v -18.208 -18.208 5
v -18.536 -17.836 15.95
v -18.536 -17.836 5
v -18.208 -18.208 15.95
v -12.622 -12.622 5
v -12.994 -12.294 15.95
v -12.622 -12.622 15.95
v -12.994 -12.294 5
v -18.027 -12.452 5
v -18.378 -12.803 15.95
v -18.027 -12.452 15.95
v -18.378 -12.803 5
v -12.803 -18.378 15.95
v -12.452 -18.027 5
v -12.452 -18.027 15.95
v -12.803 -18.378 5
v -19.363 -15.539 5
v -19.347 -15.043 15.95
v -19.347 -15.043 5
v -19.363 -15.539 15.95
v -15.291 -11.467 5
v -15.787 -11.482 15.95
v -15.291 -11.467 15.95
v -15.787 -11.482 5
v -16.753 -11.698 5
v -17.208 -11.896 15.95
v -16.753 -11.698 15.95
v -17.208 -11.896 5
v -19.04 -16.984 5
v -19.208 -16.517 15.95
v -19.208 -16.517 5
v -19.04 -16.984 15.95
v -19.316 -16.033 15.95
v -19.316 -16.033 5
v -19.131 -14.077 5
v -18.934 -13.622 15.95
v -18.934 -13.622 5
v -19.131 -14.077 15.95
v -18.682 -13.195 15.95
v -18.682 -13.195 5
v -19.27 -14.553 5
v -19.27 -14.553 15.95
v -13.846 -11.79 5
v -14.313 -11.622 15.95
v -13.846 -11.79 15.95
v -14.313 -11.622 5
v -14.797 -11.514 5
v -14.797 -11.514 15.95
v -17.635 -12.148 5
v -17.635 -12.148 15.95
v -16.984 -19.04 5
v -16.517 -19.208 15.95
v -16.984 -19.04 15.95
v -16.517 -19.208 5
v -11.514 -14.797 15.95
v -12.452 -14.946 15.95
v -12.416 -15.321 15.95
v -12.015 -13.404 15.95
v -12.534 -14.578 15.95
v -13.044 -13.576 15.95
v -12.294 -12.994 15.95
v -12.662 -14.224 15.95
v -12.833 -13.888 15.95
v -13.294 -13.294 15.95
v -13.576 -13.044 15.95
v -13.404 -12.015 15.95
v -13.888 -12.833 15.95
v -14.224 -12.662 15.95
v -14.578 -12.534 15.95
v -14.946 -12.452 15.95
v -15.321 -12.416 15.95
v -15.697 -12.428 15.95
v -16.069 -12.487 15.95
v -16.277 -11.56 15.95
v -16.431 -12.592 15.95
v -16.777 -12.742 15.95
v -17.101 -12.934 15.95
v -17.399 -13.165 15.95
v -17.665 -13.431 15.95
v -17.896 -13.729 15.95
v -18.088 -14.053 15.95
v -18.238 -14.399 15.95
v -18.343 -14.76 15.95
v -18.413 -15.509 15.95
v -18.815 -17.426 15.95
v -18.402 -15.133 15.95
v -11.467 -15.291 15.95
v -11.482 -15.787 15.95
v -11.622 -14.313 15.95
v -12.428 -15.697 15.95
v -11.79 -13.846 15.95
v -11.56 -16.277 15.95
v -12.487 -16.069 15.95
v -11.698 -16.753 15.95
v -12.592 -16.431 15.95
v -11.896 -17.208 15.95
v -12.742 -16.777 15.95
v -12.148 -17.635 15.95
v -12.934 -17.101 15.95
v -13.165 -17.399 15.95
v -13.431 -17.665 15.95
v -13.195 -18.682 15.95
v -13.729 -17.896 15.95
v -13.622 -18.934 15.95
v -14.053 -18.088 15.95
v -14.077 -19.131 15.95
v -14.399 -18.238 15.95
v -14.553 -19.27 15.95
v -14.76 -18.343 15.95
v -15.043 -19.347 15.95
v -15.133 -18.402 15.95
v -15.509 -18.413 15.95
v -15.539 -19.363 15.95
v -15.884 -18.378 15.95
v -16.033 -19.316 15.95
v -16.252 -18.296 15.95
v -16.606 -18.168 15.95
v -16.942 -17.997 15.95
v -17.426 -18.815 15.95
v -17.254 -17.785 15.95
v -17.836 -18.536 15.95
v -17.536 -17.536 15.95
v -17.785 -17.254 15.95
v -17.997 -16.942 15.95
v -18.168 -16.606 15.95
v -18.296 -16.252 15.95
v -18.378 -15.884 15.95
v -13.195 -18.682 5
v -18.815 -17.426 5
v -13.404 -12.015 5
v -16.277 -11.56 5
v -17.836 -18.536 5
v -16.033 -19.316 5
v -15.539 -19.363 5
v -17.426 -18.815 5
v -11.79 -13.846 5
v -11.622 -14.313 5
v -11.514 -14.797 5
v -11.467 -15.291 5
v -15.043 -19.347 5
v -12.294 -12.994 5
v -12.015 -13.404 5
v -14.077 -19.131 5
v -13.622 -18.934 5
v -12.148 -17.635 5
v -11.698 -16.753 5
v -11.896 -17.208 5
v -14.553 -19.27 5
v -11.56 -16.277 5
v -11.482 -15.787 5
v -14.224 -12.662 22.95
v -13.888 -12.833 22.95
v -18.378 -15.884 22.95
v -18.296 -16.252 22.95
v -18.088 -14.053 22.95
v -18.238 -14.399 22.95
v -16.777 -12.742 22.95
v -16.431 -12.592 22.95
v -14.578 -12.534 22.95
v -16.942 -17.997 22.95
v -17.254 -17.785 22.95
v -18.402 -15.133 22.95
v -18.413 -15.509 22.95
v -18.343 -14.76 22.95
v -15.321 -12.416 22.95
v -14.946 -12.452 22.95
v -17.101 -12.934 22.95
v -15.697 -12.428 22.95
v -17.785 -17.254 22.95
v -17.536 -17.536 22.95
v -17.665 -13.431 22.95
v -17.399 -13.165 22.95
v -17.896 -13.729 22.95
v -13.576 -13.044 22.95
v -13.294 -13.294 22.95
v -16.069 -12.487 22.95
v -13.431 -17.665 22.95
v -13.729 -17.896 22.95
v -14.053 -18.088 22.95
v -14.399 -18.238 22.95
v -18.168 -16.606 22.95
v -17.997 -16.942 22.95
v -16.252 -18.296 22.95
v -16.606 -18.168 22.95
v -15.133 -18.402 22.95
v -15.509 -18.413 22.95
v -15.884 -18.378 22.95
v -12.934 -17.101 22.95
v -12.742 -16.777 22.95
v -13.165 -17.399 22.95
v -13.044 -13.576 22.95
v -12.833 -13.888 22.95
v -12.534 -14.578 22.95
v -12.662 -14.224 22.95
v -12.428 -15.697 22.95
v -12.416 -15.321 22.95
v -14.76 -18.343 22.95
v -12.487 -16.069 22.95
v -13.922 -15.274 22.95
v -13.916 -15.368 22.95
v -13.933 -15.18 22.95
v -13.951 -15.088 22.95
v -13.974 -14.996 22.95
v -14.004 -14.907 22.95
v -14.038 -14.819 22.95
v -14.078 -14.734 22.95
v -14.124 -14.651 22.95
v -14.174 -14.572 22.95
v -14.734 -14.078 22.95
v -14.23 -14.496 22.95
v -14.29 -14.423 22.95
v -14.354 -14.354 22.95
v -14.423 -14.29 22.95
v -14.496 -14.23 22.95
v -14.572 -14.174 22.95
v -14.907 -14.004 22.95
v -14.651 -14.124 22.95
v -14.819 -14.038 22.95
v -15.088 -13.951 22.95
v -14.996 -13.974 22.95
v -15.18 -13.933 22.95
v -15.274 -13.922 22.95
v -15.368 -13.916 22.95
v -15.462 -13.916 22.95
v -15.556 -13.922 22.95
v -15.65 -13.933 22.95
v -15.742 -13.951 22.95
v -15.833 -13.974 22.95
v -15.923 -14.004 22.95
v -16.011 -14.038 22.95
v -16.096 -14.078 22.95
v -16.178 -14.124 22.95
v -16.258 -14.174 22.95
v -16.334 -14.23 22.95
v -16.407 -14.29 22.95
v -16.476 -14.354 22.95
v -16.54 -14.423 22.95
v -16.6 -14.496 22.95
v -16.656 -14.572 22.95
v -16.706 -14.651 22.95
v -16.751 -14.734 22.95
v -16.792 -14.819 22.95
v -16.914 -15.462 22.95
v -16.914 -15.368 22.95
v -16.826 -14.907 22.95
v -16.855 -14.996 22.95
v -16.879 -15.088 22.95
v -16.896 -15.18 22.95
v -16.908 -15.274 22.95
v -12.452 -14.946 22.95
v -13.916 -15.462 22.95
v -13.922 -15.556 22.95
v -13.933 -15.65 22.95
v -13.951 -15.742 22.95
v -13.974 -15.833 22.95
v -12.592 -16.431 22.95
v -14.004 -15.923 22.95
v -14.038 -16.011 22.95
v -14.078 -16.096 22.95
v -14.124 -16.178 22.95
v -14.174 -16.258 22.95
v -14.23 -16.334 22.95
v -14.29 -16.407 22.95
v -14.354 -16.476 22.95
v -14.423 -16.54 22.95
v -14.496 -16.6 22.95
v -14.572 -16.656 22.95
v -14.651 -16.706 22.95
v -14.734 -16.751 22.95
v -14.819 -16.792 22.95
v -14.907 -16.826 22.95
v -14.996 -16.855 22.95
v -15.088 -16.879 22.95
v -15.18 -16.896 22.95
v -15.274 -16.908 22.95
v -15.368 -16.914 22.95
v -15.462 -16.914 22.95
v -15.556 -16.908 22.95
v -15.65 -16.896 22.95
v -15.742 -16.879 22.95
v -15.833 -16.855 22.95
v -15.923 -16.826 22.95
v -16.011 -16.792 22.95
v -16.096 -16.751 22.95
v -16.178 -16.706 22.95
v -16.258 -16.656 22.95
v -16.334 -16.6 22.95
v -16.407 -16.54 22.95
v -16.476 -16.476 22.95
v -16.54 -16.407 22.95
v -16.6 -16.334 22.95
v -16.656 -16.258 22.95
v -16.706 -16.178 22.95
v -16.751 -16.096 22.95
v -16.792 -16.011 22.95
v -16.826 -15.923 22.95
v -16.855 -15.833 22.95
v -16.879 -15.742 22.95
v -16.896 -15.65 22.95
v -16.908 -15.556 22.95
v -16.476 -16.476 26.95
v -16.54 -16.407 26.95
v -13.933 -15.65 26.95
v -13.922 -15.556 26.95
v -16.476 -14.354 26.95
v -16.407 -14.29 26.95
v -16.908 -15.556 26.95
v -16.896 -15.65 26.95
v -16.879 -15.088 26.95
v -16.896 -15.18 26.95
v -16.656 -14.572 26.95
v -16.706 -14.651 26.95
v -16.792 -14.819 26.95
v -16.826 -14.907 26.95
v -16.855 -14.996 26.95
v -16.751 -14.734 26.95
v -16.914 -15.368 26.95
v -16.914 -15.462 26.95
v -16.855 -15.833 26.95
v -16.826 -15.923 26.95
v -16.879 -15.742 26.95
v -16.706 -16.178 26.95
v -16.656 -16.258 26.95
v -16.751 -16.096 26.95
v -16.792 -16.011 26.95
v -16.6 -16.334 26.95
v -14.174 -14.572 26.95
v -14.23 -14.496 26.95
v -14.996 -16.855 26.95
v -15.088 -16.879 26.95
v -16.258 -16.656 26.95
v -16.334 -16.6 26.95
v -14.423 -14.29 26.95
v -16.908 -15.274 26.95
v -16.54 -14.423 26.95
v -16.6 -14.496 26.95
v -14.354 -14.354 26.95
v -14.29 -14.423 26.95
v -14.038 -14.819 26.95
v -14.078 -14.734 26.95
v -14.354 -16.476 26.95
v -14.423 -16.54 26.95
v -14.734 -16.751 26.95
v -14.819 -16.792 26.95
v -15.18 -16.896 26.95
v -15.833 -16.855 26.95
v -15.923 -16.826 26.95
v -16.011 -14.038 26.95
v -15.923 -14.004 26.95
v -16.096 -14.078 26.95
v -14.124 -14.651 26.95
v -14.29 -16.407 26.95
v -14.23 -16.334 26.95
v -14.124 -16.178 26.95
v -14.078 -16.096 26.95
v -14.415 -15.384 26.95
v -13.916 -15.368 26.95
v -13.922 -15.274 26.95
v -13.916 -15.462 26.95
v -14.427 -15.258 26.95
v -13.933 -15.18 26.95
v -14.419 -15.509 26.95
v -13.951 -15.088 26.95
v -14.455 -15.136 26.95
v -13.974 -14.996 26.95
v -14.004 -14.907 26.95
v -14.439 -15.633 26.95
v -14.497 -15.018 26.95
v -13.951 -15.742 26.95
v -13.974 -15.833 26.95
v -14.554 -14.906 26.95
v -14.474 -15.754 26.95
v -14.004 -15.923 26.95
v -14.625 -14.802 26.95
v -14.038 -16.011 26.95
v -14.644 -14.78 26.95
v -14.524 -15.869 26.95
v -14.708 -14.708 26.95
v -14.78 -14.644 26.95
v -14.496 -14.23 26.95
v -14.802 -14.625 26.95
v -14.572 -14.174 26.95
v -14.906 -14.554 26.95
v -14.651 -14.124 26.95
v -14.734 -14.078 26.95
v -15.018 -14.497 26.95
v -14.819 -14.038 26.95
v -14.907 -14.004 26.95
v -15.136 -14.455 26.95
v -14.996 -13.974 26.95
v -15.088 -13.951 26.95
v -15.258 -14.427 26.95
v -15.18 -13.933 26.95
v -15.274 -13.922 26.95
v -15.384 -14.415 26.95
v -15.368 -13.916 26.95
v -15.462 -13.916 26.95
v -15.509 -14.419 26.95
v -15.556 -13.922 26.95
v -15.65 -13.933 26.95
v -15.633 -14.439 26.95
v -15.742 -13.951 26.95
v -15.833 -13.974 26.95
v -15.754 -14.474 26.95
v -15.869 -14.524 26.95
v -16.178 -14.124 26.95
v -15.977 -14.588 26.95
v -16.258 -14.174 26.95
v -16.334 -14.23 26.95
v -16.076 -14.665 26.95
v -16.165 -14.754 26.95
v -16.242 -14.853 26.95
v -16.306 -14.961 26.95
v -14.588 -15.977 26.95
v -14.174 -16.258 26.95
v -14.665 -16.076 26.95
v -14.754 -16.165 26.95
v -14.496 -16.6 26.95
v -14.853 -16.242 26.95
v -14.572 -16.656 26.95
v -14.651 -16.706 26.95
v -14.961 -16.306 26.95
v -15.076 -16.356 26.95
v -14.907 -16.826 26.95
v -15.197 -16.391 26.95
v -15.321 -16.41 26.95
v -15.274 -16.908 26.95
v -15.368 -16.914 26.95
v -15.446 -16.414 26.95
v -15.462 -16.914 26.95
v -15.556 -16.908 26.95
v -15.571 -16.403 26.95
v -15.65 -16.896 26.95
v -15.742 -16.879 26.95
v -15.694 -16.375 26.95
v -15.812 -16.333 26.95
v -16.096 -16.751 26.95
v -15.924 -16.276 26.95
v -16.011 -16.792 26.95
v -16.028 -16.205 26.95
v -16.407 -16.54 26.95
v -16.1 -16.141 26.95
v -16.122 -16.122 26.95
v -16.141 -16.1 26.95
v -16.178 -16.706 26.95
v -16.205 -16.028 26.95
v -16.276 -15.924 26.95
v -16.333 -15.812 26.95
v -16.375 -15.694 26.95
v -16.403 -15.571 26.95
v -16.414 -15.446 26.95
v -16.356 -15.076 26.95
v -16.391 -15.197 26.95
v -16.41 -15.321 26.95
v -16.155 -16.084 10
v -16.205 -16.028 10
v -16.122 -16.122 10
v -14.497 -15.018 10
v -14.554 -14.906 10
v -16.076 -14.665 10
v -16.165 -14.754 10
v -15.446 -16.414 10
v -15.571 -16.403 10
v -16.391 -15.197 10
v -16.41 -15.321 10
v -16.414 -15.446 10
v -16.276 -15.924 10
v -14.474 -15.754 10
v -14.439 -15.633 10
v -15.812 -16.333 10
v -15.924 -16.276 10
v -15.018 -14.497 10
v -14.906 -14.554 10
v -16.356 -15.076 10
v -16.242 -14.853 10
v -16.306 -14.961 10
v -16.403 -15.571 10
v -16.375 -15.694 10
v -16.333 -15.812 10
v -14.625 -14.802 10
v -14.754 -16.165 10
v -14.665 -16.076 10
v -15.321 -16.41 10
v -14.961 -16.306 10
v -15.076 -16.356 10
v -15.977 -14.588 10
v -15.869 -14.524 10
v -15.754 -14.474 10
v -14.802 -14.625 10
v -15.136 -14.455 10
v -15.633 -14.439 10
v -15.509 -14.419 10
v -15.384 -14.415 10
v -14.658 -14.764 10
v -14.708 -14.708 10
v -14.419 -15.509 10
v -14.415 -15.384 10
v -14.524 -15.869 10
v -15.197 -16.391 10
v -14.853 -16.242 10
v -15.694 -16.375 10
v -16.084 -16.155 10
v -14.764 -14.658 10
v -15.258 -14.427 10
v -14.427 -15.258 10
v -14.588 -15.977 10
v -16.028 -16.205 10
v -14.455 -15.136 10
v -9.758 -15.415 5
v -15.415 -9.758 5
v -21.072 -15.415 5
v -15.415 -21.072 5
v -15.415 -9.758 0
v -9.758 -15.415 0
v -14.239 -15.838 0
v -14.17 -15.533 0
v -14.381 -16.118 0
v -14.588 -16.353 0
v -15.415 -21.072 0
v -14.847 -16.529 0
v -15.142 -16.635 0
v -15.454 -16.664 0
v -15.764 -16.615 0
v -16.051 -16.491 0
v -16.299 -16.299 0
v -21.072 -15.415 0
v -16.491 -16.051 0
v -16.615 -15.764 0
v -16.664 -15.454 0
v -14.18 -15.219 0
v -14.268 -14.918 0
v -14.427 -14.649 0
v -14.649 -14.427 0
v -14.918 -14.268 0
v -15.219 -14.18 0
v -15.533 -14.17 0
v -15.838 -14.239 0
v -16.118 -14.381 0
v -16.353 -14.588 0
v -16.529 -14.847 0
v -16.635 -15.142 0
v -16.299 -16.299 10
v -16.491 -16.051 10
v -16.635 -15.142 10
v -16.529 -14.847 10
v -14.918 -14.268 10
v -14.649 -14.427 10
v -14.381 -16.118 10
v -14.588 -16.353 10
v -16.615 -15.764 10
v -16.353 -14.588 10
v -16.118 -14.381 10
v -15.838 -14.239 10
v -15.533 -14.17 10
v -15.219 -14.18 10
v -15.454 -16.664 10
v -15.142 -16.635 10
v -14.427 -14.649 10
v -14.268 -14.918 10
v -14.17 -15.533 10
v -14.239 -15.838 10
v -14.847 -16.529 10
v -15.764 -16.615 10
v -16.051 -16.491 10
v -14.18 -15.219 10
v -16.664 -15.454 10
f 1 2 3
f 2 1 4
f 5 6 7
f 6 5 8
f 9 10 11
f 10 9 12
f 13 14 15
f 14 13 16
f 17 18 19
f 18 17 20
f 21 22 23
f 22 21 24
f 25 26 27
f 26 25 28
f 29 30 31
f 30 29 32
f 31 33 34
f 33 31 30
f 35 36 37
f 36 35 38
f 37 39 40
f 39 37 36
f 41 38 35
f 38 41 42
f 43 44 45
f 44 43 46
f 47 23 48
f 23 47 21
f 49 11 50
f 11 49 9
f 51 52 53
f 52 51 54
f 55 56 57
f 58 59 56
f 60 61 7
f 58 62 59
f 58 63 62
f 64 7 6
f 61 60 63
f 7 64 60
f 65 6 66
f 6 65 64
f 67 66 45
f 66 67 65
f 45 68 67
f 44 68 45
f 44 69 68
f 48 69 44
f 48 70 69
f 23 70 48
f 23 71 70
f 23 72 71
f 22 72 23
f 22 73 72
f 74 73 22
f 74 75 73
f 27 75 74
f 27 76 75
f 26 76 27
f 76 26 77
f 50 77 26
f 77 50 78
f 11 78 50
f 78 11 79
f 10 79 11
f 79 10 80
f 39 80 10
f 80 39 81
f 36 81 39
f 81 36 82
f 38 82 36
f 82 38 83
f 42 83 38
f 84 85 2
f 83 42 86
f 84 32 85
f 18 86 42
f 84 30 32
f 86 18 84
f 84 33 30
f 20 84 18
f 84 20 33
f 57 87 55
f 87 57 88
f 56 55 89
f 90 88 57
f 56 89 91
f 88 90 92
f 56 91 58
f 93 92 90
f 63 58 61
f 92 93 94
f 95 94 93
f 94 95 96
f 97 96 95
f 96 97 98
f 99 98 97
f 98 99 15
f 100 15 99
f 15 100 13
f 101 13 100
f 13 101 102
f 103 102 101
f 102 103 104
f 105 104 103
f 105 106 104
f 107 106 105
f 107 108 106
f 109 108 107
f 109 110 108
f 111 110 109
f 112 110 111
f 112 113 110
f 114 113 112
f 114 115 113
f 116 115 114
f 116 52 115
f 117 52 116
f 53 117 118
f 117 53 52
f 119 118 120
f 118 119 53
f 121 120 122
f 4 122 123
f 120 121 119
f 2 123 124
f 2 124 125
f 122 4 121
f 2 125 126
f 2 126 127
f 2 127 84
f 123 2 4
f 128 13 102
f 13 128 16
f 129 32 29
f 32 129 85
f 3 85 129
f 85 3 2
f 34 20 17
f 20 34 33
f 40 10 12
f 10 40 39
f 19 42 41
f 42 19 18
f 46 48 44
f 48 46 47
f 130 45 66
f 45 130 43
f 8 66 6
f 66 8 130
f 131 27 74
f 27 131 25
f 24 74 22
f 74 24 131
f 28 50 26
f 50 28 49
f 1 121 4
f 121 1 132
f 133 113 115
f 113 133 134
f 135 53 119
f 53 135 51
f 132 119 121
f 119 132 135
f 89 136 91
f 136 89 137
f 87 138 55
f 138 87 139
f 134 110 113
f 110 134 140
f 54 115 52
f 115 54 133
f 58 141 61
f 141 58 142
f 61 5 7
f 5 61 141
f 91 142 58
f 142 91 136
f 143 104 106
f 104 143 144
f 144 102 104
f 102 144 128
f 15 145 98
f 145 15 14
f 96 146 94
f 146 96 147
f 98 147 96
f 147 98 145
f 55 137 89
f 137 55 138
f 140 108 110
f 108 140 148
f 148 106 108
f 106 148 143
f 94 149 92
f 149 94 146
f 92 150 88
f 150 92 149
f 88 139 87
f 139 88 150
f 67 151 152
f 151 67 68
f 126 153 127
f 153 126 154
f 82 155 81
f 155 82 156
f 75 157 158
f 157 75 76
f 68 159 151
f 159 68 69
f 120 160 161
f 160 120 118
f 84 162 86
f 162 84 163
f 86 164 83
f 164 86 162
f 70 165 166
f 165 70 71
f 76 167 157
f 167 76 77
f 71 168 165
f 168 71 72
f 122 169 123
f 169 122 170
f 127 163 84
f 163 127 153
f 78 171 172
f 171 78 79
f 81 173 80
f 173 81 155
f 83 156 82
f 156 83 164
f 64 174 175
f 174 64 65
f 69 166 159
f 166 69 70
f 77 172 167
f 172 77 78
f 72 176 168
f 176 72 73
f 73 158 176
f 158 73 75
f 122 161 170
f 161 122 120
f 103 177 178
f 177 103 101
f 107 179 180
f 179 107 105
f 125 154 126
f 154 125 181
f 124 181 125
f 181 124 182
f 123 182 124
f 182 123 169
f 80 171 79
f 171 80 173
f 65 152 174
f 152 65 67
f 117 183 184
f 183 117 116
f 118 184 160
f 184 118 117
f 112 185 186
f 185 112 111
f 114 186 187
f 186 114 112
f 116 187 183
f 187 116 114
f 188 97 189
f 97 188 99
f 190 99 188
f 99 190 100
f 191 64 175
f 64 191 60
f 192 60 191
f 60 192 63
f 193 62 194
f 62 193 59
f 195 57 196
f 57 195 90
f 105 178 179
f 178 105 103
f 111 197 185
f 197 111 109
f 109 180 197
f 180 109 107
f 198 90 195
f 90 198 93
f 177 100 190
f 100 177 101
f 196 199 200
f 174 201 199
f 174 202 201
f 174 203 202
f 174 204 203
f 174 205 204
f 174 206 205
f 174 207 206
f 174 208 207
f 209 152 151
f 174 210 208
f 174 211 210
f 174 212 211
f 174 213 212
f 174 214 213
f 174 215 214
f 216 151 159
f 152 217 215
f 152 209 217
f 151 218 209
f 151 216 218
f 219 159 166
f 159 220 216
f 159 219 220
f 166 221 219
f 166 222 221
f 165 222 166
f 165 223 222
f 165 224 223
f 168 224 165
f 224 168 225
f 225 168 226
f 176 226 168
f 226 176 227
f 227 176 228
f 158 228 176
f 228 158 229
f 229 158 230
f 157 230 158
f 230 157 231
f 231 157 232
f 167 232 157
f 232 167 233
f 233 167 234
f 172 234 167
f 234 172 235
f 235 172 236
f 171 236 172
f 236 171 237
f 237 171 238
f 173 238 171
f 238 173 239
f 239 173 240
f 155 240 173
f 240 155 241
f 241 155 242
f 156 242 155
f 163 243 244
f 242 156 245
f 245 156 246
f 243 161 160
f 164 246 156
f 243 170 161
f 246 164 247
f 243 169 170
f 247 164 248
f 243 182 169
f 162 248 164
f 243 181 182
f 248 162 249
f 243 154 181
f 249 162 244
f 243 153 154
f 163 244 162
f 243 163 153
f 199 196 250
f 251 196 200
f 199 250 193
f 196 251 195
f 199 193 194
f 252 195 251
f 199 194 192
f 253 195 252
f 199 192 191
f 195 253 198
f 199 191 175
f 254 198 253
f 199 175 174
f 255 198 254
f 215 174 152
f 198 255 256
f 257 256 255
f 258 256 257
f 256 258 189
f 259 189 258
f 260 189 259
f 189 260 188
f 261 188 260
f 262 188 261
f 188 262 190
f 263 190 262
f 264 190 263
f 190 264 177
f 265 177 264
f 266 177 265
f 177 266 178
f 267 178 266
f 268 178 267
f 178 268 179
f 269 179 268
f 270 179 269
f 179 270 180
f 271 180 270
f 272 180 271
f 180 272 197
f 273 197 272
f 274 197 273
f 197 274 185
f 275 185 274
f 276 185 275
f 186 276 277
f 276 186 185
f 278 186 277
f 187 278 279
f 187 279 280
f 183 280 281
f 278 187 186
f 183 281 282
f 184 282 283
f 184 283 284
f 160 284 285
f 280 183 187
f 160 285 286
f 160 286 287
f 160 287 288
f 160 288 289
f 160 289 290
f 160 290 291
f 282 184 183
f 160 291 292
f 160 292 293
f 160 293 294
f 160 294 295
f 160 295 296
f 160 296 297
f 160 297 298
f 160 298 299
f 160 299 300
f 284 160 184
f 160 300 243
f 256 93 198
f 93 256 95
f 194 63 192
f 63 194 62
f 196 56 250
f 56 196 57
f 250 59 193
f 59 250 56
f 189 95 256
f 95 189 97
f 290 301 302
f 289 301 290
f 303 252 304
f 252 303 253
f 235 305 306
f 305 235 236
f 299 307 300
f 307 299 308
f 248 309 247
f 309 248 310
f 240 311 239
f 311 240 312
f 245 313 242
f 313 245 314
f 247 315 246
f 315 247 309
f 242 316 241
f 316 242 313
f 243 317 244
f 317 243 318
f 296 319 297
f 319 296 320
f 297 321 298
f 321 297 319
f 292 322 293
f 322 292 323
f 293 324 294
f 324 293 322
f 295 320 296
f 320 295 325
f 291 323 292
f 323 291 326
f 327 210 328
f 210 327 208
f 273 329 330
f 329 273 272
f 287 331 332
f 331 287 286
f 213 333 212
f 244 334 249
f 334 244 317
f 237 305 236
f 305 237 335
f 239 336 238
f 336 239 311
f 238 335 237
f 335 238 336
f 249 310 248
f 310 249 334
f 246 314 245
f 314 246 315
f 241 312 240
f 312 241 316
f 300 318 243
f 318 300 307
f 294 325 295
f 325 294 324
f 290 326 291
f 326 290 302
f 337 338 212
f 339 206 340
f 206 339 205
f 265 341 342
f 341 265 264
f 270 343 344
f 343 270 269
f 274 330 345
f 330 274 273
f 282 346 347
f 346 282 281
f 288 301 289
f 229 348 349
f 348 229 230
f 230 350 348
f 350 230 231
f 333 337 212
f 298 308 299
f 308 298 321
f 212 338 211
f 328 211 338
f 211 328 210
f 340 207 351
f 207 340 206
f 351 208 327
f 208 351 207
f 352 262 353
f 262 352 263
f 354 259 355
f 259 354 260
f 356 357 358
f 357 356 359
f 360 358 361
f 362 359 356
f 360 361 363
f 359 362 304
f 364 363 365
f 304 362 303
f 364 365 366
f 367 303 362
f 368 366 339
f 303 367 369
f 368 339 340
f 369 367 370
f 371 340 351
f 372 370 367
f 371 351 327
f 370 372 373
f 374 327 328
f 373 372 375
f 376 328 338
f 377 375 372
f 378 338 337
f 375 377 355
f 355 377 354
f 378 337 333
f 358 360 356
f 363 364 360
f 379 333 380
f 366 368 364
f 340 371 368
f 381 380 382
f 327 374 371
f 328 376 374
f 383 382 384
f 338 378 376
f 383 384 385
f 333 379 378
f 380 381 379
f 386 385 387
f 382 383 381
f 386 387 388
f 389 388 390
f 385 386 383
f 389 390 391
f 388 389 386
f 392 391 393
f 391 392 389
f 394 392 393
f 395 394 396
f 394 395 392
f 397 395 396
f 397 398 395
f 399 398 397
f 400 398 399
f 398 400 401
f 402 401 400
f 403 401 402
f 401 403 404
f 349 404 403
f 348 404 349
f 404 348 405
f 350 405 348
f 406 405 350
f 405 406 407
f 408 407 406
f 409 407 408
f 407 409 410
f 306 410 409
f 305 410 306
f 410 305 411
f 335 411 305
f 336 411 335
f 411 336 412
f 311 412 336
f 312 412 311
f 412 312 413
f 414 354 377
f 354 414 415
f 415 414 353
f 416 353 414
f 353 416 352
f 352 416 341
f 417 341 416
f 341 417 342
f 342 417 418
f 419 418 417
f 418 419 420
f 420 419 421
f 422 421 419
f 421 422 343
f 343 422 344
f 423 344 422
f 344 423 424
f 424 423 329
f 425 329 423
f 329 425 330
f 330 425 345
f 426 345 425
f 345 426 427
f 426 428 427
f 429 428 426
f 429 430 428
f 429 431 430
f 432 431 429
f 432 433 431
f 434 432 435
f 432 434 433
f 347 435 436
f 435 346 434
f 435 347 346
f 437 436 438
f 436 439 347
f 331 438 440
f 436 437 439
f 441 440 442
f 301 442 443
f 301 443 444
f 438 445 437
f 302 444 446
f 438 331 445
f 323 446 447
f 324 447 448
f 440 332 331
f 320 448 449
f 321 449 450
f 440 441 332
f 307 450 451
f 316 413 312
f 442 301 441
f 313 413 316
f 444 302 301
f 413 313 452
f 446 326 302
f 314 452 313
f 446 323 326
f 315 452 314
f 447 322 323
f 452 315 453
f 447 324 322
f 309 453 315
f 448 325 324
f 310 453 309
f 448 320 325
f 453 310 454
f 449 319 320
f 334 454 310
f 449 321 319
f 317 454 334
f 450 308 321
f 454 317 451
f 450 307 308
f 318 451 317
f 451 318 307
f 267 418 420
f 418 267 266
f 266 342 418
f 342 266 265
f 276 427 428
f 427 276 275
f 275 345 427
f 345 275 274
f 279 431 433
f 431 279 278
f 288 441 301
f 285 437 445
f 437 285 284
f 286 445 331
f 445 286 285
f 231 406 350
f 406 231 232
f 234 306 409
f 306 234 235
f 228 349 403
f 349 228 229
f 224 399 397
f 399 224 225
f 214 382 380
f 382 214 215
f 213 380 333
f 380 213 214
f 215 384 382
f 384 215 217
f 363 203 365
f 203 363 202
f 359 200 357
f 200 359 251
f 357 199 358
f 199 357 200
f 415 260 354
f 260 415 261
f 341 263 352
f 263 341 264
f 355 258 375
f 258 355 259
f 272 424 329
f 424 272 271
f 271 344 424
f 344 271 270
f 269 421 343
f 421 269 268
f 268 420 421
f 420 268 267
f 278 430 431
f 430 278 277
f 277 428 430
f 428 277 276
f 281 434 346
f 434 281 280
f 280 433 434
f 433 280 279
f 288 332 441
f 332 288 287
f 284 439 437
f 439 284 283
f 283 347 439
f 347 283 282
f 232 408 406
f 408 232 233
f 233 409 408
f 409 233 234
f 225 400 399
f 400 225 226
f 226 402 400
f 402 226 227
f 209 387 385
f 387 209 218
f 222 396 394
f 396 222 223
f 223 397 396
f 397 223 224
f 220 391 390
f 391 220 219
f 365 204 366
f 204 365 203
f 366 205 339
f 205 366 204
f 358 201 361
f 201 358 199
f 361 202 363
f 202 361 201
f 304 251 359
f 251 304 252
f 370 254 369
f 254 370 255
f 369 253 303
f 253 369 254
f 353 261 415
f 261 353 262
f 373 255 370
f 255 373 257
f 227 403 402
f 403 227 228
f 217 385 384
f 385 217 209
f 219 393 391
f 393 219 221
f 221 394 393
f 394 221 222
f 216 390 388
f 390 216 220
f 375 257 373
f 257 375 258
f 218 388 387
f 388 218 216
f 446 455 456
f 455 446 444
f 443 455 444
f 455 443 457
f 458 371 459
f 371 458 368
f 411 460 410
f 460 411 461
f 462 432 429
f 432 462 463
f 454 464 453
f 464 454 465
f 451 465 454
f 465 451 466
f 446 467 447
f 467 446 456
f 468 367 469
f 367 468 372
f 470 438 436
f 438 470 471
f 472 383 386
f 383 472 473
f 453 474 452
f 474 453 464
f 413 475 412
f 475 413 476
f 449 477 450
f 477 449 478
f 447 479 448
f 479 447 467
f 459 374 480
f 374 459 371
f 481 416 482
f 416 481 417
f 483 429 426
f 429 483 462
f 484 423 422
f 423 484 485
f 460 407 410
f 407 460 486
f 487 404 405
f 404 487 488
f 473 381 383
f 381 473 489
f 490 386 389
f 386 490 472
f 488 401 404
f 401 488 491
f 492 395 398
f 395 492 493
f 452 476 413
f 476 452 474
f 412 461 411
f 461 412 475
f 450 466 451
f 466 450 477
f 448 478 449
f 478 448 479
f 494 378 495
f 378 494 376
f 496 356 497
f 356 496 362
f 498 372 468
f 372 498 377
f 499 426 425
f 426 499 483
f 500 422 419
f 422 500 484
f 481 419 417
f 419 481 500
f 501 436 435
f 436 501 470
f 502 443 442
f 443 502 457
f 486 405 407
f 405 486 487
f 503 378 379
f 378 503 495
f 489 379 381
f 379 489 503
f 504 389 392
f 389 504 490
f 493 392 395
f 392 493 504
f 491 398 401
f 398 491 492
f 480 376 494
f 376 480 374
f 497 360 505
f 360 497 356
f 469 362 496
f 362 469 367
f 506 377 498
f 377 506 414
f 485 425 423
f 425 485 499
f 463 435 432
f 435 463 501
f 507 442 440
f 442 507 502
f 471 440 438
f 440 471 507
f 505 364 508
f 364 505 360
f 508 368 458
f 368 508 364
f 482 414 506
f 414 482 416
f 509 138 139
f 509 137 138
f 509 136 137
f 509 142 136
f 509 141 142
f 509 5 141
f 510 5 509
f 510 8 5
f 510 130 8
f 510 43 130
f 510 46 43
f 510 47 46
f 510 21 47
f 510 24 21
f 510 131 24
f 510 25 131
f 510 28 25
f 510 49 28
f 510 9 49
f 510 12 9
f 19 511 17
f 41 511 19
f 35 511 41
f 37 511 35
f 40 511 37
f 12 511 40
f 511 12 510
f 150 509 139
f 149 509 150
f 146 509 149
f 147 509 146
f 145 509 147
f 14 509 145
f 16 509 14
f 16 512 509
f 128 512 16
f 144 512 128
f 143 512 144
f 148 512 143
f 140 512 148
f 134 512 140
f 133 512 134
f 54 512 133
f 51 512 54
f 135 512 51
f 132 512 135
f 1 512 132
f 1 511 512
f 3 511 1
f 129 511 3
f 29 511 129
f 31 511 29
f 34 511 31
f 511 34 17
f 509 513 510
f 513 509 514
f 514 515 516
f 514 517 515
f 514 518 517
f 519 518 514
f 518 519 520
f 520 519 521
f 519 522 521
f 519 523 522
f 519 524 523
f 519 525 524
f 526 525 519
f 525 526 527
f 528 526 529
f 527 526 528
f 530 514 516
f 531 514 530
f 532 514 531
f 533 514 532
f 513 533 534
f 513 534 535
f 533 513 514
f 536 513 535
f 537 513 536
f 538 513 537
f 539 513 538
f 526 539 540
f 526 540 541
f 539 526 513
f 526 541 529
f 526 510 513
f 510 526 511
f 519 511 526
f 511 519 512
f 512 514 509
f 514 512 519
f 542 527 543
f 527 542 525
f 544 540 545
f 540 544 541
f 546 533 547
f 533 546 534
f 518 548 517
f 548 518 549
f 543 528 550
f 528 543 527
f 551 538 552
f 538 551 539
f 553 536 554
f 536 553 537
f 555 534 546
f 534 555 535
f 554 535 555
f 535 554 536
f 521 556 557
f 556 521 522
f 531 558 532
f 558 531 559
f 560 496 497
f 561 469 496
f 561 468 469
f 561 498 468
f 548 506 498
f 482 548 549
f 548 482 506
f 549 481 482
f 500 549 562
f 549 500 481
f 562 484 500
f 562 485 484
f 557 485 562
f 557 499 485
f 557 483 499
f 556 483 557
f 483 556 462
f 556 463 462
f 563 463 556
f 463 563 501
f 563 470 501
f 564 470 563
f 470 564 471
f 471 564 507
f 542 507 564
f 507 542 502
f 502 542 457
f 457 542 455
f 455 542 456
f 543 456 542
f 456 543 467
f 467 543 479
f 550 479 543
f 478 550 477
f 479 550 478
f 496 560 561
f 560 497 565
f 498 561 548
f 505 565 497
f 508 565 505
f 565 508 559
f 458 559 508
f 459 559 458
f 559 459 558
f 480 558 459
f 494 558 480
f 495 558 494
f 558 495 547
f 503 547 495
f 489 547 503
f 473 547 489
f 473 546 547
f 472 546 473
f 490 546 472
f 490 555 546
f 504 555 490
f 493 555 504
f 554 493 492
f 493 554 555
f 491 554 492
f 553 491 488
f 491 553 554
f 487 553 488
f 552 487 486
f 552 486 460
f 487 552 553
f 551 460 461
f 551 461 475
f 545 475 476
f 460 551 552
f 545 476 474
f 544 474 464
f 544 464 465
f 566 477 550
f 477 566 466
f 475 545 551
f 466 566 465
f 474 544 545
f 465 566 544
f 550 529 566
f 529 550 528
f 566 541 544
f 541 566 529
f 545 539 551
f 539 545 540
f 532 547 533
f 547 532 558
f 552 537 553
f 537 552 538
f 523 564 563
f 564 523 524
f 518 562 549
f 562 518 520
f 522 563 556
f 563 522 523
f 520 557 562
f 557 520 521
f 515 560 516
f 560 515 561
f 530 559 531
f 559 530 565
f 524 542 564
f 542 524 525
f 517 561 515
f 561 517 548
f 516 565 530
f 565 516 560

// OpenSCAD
// file: openscad-extra/src/countersink.scad
/*
Countersink depression for tapered screw heads.
*/

module make_countersink(d1=0, d2=0, h=0, outer=10, inner=0, $fn=25){
    /*
    d1 = shaft diameter
    d2 = head diameter
    h = height of taper
    outer = height of head mass
    inner = height of shaft mass, including taper
    */
    default_taper_height = 2;
    d1 = d1 ? d1 : 2.5;
    d2 = d2 ? d2 : 5;
    h = h ? h : default_taper_height;
    inner = (inner ? inner : 10) - default_taper_height;
    
    translate([0, 0, -default_taper_height/2])
    union(){
        
        // taper
        cylinder(d1=d1, d2=d2, h=h, center=true, $fn=$fn);
    
        // big top
    	translate([0, 0, h/2])
    	cylinder(d=d2, h=outer, center=false, $fn=$fn);
        
    	// lower bottom
    	translate([0, 0, -h/2-inner])
    	cylinder(d=d1, h=inner, center=false, $fn=$fn);
	}
}

make_countersink(inner=10);

color("blue")
translate([0,2,0])
cylinder(d=2.5, h=20, center=true, $fn=100);
// file: leg_hip_holder.scad
use <openscad-extra/src/countersink.scad>;

module leg_hip_holder(show_axle=0){
    axle_offset_z = -22+0.2;
    
    difference(){
        hull(){
            cube([10, 100+10, 5], center=true);
            
            translate([0,0,axle_offset_z])
            cube([10, 30, 30], center=true);
        }
        
        // notch cutout
        color("orange")
        translate([-5/2,0,0])
        cube([5.5, 110, 5.5], center=true);

        // bottom brace cutout
        color("blue")
        translate([0,0,axle_offset_z-30/2+5/2])
        cube([15, 30, 5.5], center=true);

        // body mount holes
        color("red")
        for(i=[0:9])
        translate([0,10*i-45,0])
        rotate([0,90,0])
        cylinder(d=2.5, h=50, center=true, $fn=50);

        // bottom brace mount holes
        color("red")
        for(j=[-1:2:1])
        for(i=[0:2])
        translate([2.5*j,10-10*i,-41.5+5])
        rotate([0,0,0])
        cylinder(d=2.5, h=20, center=true, $fn=50);

        // mass cutouts
        color("red")
        for(i=[-1:2:1]){
            hull(){
            translate([0,15*i,-17])
            rotate([0,90,0])
            // big mass cutouts
            cylinder(d=20, h=50, center=true, $fn=50);
            
            translate([0,35*i,-9.5])
            rotate([0,90,0])
            // small mass cutouts
            cylinder(d=5, h=50, center=true, $fn=50);
            }
        }
        
        // end cutouts
        color("orange")
        for(i=[-1:2:1])
        translate([0,(50+2.5)*i,0])
        cube([30, 5.5, 5.5], center=true);

        // bottom mount mass
        color("green")
        translate([0,0,axle_offset_z])
        translate([-5/2,0,0])
        cube([5.5,8.6,8.6], center=true);

        // axle mounting hole
        translate([0,0,axle_offset_z])
        translate([5,0,0])
        rotate([0,90,0])
        make_countersink(d1=2.5, d2=5, outer=10, inner=40, $fn=25);

    }// end diff

    // mock axle
    if(show_axle)
    translate([0,0,axle_offset_z])        
    rotate([0,90,0])
    color("red")
    cylinder(d=1, h=100, center=true, $fn=50);
    
    
}

module leg_hip_axle(show_axle=0){
    axle_offset_z = -22+0.2;

    translate([0,0,axle_offset_z]){

        difference(){
            union(){
                difference(){
                    union(){
                        rotate([0,90,0]){
                            translate([0,0,-10/2+0.05]){
                                // bearing axle
                                translate([0,0,-11/2])
                                cylinder(d=7.9-0.5+0.5, h=11, center=true, $fn=50);
                                // leg axle
                                color("blue")
                                translate([0,0,-(11+7)/2])
                                cylinder(d=6, h=11+7, center=true, $fn=50);
                            }
                        }
                        // hip cap mount
                        color("purple")
                        translate([-(4+11+7)/2-10-3.5,0,0])
                        cube([4,4,4], center=true);
                    }
                    
                    // screw hole
                    rotate([0,90,0])
                    color("red")
                    cylinder(d=2, h=100, center=true, $fn=50);
                }
                
                // bottom mount mass
                color("green")
                translate([-5/2,0,0])
                cube([5,8,8], center=true);
            }
        
            // axle mounting hole
            translate([5,0,0])
            rotate([0,90,0])
            make_countersink(d1=2.5, d2=5, outer=10, inner=15, $fn=25);
        }
    }
    
}

module leg_hip_axle_round(show_axle=0){
    axle_offset_z = -22+0.2;

    translate([0,0,axle_offset_z]){

        difference(){
            union(){
                difference(){
                    union(){
                        rotate([0,90,0]){
                            translate([0,0,-10/2+0.05]){
                                // bearing axle
                                translate([0,0,-11/2])
                                cylinder(d=7.9-0.5+0.5, h=11, center=true, $fn=50);
                                // leg axle
                                color("blue")
                                translate([0,0,-(11+7)/2])
                                cylinder(d=6, h=11+7, center=true, $fn=50);
                            }
                        }
                        // hip cap mount
                        if(0)
                        color("purple")
                        translate([-(4+11+7)/2-10-3.5,0,0])
                        cube([4,4,4], center=true);
                        
                        color("purple")
                        translate([-(4+11+7)/2-10-3.5-.45,0,0])
                        rotate([0,90,0])
                        cylinder(d=3, h=4, center=true, $fn=100);
                    }
                    
                    // screw hole
                    rotate([0,90,0])
                    color("red")
                    cylinder(d=2, h=100, center=true, $fn=50);
                }
                
                // bottom mount mass
                if(1)
                color("green")
                translate([-5/2,0,0])
                cube([5,8,8], center=true);
                
            }
        
            // axle mounting hole
            translate([5,0,0])
            rotate([0,90,0])
            make_countersink(d1=2.5, d2=5, outer=10, inner=15, $fn=25);
        }
    }
    
}


if(1)
rotate([0,0,45])
rotate([0,90,0])
leg_hip_holder();

if(0)
rotate([0,0,45])
rotate([0,90,0])
leg_hip_axle();
// main file
use <leg_hip_holder.scad>;


if(1)
rotate([0,0,45])
rotate([0,90,0])
leg_hip_axle_round();
